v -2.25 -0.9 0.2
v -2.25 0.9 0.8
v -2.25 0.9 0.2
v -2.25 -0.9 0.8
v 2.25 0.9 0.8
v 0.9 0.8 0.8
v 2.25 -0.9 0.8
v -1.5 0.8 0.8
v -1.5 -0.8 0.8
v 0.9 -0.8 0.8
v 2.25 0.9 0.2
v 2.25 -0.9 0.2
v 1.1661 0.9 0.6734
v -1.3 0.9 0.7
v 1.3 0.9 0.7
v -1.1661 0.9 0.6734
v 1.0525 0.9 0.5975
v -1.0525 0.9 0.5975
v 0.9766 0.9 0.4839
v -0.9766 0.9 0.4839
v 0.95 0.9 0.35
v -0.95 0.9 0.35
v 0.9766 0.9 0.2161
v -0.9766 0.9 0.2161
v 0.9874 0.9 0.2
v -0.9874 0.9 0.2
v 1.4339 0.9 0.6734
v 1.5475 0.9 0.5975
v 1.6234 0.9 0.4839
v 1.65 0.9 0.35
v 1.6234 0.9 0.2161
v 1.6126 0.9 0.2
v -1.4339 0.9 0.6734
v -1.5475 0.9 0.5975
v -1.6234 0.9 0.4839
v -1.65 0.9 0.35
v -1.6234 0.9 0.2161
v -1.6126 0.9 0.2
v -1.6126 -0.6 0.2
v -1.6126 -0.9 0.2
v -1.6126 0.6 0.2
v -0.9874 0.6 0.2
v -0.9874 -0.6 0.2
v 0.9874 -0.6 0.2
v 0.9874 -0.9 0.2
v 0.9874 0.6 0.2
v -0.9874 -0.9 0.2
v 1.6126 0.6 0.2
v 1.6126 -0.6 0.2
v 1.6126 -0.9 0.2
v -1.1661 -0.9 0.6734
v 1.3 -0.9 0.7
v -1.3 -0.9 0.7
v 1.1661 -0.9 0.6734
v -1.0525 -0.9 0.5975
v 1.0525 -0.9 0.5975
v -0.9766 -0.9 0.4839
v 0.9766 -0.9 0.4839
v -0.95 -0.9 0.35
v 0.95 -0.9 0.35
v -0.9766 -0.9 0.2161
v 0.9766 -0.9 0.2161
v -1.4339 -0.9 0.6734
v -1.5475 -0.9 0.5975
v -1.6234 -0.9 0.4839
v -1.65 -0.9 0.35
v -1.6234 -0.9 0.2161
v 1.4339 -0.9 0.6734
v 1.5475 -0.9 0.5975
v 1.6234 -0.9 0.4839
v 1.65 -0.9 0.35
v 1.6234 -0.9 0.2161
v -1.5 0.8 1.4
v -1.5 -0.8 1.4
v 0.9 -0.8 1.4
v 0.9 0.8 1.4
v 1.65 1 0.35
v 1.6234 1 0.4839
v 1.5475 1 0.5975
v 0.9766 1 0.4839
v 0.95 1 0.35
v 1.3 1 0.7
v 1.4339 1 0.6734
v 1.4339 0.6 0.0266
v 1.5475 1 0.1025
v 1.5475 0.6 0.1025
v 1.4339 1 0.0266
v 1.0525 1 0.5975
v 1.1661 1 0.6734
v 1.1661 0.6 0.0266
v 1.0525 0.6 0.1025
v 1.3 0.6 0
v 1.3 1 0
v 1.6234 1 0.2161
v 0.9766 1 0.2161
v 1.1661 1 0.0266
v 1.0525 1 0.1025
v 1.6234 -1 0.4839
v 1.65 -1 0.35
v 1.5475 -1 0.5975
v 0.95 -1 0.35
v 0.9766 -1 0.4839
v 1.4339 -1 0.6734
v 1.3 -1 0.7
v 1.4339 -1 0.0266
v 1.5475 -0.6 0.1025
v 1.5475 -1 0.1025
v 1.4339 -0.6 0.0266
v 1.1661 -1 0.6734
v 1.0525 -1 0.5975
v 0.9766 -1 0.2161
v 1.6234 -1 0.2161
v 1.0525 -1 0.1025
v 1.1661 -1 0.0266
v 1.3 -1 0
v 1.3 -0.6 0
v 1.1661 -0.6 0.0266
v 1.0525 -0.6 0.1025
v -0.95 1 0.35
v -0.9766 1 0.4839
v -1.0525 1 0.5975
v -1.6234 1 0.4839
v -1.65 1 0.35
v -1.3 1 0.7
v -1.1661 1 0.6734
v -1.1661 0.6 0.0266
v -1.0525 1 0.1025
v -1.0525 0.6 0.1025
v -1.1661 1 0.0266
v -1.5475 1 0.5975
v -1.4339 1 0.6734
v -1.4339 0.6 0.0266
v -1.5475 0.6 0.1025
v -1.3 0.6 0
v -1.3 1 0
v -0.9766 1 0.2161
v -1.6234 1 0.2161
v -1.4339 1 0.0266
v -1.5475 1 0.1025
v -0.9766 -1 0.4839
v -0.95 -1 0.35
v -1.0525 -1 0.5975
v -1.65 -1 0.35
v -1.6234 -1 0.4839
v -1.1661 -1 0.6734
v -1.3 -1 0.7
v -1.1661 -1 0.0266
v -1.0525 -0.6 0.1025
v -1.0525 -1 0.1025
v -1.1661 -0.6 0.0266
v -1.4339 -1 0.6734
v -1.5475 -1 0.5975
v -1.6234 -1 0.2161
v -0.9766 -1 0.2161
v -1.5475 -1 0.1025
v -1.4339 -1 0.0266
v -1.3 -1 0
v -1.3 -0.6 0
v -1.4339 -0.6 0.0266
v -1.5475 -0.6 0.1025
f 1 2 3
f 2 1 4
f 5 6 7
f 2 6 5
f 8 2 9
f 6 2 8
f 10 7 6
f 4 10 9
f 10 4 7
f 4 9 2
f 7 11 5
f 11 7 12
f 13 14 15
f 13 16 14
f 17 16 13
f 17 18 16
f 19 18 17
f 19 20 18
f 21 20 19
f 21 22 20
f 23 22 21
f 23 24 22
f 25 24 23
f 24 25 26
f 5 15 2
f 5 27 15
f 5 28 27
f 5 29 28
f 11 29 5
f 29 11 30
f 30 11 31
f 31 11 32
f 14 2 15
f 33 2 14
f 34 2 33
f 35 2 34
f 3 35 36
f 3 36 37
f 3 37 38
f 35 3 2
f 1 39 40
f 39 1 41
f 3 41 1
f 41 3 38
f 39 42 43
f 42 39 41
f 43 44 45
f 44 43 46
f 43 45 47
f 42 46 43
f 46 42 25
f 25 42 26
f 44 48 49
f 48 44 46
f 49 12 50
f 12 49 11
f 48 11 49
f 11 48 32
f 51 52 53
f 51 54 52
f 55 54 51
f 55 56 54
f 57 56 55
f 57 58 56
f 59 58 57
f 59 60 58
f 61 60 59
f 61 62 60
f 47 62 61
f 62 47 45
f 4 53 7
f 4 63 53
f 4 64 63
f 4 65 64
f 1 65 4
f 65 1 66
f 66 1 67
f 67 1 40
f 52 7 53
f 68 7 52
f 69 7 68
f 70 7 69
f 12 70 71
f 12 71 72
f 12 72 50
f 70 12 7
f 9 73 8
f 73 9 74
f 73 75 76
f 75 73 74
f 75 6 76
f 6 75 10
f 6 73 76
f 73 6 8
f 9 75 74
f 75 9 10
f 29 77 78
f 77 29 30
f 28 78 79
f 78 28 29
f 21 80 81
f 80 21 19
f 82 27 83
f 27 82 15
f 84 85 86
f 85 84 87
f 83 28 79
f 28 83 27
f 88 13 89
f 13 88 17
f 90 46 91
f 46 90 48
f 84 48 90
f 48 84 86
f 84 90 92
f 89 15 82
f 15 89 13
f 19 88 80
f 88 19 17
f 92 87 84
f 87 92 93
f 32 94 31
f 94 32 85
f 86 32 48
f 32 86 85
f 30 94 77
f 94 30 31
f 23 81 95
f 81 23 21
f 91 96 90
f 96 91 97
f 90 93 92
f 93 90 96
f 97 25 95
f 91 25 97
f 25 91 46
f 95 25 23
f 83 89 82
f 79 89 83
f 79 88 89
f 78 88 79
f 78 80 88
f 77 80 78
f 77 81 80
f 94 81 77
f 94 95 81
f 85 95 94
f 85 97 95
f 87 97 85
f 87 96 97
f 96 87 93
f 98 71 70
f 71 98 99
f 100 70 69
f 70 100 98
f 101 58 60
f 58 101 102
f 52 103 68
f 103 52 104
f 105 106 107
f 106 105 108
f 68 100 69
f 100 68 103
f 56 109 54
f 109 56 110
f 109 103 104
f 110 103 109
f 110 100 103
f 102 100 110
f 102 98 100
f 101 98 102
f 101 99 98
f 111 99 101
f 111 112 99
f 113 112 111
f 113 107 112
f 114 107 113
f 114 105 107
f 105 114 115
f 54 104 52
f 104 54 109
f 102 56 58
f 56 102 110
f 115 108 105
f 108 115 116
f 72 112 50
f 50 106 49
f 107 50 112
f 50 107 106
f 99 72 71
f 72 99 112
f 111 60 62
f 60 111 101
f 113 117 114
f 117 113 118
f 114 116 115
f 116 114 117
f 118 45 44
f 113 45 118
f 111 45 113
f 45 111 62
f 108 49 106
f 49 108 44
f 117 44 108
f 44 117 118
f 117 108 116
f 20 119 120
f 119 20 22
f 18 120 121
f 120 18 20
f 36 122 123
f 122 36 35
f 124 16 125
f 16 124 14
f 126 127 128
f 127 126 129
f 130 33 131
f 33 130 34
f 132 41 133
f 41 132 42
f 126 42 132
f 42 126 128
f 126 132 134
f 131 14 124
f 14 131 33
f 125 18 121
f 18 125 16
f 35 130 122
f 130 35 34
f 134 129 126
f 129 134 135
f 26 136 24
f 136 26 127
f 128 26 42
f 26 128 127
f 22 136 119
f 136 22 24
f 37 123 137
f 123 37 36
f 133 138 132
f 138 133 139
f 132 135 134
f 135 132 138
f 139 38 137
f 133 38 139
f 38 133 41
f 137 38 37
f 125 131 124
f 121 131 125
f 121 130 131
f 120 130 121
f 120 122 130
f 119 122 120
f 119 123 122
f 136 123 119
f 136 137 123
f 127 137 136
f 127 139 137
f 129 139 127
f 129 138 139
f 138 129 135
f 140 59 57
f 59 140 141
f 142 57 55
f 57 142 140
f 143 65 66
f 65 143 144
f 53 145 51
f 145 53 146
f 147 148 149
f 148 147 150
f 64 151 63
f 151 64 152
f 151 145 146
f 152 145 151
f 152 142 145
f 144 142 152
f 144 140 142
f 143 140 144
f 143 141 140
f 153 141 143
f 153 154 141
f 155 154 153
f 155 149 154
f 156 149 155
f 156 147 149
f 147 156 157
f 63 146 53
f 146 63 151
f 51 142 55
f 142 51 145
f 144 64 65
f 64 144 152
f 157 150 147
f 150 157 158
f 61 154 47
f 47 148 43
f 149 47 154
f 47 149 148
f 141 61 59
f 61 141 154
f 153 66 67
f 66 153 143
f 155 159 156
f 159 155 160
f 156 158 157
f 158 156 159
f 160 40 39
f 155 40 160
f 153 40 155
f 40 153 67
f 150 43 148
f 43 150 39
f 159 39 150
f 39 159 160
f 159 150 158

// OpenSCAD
// Car Module

module simple_car() {
    body_length = 4.5;
    body_width = 1.8;
    lower_body_height = 0.6;
    body_clearance = 0.2; 
    
    cabin_length = 2.4;
    cabin_width = 1.6;
    cabin_height = 0.6;
    cabin_offset_x = -0.3;
    
    wheel_radius = 0.35;
    wheel_thickness = 0.4;
    wheel_base_x = 2.6; 
    wheel_track_y = 1.6; 


    // Lower Chassis
    color("DodgerBlue")
    translate([0, 0, body_clearance + (lower_body_height / 2)])
        cube([body_length, body_width, lower_body_height], center=true);

    // Upper Cabin
    color("LightSkyBlue")
    translate([cabin_offset_x, 0, body_clearance + lower_body_height + (cabin_height / 2)])
        cube([cabin_length, cabin_width, cabin_height], center=true);

    // wheels
    module wheel() {
        color("DarkSlateGray")
        rotate([90, 0, 0])
        cylinder(h=wheel_thickness, r=wheel_radius, center=true, $fn=16);
    }

    // Front Left
    translate([wheel_base_x / 2, wheel_track_y / 2, wheel_radius]) 
        wheel();
    
    // Front Right
    translate([wheel_base_x / 2, -wheel_track_y / 2, wheel_radius]) 
        wheel();
    
    // Rear Left
    translate([-wheel_base_x / 2, wheel_track_y / 2, wheel_radius]) 
        wheel();
    
    // Rear Right
    translate([-wheel_base_x / 2, -wheel_track_y / 2, wheel_radius]) 
        wheel();
}

simple_car();
